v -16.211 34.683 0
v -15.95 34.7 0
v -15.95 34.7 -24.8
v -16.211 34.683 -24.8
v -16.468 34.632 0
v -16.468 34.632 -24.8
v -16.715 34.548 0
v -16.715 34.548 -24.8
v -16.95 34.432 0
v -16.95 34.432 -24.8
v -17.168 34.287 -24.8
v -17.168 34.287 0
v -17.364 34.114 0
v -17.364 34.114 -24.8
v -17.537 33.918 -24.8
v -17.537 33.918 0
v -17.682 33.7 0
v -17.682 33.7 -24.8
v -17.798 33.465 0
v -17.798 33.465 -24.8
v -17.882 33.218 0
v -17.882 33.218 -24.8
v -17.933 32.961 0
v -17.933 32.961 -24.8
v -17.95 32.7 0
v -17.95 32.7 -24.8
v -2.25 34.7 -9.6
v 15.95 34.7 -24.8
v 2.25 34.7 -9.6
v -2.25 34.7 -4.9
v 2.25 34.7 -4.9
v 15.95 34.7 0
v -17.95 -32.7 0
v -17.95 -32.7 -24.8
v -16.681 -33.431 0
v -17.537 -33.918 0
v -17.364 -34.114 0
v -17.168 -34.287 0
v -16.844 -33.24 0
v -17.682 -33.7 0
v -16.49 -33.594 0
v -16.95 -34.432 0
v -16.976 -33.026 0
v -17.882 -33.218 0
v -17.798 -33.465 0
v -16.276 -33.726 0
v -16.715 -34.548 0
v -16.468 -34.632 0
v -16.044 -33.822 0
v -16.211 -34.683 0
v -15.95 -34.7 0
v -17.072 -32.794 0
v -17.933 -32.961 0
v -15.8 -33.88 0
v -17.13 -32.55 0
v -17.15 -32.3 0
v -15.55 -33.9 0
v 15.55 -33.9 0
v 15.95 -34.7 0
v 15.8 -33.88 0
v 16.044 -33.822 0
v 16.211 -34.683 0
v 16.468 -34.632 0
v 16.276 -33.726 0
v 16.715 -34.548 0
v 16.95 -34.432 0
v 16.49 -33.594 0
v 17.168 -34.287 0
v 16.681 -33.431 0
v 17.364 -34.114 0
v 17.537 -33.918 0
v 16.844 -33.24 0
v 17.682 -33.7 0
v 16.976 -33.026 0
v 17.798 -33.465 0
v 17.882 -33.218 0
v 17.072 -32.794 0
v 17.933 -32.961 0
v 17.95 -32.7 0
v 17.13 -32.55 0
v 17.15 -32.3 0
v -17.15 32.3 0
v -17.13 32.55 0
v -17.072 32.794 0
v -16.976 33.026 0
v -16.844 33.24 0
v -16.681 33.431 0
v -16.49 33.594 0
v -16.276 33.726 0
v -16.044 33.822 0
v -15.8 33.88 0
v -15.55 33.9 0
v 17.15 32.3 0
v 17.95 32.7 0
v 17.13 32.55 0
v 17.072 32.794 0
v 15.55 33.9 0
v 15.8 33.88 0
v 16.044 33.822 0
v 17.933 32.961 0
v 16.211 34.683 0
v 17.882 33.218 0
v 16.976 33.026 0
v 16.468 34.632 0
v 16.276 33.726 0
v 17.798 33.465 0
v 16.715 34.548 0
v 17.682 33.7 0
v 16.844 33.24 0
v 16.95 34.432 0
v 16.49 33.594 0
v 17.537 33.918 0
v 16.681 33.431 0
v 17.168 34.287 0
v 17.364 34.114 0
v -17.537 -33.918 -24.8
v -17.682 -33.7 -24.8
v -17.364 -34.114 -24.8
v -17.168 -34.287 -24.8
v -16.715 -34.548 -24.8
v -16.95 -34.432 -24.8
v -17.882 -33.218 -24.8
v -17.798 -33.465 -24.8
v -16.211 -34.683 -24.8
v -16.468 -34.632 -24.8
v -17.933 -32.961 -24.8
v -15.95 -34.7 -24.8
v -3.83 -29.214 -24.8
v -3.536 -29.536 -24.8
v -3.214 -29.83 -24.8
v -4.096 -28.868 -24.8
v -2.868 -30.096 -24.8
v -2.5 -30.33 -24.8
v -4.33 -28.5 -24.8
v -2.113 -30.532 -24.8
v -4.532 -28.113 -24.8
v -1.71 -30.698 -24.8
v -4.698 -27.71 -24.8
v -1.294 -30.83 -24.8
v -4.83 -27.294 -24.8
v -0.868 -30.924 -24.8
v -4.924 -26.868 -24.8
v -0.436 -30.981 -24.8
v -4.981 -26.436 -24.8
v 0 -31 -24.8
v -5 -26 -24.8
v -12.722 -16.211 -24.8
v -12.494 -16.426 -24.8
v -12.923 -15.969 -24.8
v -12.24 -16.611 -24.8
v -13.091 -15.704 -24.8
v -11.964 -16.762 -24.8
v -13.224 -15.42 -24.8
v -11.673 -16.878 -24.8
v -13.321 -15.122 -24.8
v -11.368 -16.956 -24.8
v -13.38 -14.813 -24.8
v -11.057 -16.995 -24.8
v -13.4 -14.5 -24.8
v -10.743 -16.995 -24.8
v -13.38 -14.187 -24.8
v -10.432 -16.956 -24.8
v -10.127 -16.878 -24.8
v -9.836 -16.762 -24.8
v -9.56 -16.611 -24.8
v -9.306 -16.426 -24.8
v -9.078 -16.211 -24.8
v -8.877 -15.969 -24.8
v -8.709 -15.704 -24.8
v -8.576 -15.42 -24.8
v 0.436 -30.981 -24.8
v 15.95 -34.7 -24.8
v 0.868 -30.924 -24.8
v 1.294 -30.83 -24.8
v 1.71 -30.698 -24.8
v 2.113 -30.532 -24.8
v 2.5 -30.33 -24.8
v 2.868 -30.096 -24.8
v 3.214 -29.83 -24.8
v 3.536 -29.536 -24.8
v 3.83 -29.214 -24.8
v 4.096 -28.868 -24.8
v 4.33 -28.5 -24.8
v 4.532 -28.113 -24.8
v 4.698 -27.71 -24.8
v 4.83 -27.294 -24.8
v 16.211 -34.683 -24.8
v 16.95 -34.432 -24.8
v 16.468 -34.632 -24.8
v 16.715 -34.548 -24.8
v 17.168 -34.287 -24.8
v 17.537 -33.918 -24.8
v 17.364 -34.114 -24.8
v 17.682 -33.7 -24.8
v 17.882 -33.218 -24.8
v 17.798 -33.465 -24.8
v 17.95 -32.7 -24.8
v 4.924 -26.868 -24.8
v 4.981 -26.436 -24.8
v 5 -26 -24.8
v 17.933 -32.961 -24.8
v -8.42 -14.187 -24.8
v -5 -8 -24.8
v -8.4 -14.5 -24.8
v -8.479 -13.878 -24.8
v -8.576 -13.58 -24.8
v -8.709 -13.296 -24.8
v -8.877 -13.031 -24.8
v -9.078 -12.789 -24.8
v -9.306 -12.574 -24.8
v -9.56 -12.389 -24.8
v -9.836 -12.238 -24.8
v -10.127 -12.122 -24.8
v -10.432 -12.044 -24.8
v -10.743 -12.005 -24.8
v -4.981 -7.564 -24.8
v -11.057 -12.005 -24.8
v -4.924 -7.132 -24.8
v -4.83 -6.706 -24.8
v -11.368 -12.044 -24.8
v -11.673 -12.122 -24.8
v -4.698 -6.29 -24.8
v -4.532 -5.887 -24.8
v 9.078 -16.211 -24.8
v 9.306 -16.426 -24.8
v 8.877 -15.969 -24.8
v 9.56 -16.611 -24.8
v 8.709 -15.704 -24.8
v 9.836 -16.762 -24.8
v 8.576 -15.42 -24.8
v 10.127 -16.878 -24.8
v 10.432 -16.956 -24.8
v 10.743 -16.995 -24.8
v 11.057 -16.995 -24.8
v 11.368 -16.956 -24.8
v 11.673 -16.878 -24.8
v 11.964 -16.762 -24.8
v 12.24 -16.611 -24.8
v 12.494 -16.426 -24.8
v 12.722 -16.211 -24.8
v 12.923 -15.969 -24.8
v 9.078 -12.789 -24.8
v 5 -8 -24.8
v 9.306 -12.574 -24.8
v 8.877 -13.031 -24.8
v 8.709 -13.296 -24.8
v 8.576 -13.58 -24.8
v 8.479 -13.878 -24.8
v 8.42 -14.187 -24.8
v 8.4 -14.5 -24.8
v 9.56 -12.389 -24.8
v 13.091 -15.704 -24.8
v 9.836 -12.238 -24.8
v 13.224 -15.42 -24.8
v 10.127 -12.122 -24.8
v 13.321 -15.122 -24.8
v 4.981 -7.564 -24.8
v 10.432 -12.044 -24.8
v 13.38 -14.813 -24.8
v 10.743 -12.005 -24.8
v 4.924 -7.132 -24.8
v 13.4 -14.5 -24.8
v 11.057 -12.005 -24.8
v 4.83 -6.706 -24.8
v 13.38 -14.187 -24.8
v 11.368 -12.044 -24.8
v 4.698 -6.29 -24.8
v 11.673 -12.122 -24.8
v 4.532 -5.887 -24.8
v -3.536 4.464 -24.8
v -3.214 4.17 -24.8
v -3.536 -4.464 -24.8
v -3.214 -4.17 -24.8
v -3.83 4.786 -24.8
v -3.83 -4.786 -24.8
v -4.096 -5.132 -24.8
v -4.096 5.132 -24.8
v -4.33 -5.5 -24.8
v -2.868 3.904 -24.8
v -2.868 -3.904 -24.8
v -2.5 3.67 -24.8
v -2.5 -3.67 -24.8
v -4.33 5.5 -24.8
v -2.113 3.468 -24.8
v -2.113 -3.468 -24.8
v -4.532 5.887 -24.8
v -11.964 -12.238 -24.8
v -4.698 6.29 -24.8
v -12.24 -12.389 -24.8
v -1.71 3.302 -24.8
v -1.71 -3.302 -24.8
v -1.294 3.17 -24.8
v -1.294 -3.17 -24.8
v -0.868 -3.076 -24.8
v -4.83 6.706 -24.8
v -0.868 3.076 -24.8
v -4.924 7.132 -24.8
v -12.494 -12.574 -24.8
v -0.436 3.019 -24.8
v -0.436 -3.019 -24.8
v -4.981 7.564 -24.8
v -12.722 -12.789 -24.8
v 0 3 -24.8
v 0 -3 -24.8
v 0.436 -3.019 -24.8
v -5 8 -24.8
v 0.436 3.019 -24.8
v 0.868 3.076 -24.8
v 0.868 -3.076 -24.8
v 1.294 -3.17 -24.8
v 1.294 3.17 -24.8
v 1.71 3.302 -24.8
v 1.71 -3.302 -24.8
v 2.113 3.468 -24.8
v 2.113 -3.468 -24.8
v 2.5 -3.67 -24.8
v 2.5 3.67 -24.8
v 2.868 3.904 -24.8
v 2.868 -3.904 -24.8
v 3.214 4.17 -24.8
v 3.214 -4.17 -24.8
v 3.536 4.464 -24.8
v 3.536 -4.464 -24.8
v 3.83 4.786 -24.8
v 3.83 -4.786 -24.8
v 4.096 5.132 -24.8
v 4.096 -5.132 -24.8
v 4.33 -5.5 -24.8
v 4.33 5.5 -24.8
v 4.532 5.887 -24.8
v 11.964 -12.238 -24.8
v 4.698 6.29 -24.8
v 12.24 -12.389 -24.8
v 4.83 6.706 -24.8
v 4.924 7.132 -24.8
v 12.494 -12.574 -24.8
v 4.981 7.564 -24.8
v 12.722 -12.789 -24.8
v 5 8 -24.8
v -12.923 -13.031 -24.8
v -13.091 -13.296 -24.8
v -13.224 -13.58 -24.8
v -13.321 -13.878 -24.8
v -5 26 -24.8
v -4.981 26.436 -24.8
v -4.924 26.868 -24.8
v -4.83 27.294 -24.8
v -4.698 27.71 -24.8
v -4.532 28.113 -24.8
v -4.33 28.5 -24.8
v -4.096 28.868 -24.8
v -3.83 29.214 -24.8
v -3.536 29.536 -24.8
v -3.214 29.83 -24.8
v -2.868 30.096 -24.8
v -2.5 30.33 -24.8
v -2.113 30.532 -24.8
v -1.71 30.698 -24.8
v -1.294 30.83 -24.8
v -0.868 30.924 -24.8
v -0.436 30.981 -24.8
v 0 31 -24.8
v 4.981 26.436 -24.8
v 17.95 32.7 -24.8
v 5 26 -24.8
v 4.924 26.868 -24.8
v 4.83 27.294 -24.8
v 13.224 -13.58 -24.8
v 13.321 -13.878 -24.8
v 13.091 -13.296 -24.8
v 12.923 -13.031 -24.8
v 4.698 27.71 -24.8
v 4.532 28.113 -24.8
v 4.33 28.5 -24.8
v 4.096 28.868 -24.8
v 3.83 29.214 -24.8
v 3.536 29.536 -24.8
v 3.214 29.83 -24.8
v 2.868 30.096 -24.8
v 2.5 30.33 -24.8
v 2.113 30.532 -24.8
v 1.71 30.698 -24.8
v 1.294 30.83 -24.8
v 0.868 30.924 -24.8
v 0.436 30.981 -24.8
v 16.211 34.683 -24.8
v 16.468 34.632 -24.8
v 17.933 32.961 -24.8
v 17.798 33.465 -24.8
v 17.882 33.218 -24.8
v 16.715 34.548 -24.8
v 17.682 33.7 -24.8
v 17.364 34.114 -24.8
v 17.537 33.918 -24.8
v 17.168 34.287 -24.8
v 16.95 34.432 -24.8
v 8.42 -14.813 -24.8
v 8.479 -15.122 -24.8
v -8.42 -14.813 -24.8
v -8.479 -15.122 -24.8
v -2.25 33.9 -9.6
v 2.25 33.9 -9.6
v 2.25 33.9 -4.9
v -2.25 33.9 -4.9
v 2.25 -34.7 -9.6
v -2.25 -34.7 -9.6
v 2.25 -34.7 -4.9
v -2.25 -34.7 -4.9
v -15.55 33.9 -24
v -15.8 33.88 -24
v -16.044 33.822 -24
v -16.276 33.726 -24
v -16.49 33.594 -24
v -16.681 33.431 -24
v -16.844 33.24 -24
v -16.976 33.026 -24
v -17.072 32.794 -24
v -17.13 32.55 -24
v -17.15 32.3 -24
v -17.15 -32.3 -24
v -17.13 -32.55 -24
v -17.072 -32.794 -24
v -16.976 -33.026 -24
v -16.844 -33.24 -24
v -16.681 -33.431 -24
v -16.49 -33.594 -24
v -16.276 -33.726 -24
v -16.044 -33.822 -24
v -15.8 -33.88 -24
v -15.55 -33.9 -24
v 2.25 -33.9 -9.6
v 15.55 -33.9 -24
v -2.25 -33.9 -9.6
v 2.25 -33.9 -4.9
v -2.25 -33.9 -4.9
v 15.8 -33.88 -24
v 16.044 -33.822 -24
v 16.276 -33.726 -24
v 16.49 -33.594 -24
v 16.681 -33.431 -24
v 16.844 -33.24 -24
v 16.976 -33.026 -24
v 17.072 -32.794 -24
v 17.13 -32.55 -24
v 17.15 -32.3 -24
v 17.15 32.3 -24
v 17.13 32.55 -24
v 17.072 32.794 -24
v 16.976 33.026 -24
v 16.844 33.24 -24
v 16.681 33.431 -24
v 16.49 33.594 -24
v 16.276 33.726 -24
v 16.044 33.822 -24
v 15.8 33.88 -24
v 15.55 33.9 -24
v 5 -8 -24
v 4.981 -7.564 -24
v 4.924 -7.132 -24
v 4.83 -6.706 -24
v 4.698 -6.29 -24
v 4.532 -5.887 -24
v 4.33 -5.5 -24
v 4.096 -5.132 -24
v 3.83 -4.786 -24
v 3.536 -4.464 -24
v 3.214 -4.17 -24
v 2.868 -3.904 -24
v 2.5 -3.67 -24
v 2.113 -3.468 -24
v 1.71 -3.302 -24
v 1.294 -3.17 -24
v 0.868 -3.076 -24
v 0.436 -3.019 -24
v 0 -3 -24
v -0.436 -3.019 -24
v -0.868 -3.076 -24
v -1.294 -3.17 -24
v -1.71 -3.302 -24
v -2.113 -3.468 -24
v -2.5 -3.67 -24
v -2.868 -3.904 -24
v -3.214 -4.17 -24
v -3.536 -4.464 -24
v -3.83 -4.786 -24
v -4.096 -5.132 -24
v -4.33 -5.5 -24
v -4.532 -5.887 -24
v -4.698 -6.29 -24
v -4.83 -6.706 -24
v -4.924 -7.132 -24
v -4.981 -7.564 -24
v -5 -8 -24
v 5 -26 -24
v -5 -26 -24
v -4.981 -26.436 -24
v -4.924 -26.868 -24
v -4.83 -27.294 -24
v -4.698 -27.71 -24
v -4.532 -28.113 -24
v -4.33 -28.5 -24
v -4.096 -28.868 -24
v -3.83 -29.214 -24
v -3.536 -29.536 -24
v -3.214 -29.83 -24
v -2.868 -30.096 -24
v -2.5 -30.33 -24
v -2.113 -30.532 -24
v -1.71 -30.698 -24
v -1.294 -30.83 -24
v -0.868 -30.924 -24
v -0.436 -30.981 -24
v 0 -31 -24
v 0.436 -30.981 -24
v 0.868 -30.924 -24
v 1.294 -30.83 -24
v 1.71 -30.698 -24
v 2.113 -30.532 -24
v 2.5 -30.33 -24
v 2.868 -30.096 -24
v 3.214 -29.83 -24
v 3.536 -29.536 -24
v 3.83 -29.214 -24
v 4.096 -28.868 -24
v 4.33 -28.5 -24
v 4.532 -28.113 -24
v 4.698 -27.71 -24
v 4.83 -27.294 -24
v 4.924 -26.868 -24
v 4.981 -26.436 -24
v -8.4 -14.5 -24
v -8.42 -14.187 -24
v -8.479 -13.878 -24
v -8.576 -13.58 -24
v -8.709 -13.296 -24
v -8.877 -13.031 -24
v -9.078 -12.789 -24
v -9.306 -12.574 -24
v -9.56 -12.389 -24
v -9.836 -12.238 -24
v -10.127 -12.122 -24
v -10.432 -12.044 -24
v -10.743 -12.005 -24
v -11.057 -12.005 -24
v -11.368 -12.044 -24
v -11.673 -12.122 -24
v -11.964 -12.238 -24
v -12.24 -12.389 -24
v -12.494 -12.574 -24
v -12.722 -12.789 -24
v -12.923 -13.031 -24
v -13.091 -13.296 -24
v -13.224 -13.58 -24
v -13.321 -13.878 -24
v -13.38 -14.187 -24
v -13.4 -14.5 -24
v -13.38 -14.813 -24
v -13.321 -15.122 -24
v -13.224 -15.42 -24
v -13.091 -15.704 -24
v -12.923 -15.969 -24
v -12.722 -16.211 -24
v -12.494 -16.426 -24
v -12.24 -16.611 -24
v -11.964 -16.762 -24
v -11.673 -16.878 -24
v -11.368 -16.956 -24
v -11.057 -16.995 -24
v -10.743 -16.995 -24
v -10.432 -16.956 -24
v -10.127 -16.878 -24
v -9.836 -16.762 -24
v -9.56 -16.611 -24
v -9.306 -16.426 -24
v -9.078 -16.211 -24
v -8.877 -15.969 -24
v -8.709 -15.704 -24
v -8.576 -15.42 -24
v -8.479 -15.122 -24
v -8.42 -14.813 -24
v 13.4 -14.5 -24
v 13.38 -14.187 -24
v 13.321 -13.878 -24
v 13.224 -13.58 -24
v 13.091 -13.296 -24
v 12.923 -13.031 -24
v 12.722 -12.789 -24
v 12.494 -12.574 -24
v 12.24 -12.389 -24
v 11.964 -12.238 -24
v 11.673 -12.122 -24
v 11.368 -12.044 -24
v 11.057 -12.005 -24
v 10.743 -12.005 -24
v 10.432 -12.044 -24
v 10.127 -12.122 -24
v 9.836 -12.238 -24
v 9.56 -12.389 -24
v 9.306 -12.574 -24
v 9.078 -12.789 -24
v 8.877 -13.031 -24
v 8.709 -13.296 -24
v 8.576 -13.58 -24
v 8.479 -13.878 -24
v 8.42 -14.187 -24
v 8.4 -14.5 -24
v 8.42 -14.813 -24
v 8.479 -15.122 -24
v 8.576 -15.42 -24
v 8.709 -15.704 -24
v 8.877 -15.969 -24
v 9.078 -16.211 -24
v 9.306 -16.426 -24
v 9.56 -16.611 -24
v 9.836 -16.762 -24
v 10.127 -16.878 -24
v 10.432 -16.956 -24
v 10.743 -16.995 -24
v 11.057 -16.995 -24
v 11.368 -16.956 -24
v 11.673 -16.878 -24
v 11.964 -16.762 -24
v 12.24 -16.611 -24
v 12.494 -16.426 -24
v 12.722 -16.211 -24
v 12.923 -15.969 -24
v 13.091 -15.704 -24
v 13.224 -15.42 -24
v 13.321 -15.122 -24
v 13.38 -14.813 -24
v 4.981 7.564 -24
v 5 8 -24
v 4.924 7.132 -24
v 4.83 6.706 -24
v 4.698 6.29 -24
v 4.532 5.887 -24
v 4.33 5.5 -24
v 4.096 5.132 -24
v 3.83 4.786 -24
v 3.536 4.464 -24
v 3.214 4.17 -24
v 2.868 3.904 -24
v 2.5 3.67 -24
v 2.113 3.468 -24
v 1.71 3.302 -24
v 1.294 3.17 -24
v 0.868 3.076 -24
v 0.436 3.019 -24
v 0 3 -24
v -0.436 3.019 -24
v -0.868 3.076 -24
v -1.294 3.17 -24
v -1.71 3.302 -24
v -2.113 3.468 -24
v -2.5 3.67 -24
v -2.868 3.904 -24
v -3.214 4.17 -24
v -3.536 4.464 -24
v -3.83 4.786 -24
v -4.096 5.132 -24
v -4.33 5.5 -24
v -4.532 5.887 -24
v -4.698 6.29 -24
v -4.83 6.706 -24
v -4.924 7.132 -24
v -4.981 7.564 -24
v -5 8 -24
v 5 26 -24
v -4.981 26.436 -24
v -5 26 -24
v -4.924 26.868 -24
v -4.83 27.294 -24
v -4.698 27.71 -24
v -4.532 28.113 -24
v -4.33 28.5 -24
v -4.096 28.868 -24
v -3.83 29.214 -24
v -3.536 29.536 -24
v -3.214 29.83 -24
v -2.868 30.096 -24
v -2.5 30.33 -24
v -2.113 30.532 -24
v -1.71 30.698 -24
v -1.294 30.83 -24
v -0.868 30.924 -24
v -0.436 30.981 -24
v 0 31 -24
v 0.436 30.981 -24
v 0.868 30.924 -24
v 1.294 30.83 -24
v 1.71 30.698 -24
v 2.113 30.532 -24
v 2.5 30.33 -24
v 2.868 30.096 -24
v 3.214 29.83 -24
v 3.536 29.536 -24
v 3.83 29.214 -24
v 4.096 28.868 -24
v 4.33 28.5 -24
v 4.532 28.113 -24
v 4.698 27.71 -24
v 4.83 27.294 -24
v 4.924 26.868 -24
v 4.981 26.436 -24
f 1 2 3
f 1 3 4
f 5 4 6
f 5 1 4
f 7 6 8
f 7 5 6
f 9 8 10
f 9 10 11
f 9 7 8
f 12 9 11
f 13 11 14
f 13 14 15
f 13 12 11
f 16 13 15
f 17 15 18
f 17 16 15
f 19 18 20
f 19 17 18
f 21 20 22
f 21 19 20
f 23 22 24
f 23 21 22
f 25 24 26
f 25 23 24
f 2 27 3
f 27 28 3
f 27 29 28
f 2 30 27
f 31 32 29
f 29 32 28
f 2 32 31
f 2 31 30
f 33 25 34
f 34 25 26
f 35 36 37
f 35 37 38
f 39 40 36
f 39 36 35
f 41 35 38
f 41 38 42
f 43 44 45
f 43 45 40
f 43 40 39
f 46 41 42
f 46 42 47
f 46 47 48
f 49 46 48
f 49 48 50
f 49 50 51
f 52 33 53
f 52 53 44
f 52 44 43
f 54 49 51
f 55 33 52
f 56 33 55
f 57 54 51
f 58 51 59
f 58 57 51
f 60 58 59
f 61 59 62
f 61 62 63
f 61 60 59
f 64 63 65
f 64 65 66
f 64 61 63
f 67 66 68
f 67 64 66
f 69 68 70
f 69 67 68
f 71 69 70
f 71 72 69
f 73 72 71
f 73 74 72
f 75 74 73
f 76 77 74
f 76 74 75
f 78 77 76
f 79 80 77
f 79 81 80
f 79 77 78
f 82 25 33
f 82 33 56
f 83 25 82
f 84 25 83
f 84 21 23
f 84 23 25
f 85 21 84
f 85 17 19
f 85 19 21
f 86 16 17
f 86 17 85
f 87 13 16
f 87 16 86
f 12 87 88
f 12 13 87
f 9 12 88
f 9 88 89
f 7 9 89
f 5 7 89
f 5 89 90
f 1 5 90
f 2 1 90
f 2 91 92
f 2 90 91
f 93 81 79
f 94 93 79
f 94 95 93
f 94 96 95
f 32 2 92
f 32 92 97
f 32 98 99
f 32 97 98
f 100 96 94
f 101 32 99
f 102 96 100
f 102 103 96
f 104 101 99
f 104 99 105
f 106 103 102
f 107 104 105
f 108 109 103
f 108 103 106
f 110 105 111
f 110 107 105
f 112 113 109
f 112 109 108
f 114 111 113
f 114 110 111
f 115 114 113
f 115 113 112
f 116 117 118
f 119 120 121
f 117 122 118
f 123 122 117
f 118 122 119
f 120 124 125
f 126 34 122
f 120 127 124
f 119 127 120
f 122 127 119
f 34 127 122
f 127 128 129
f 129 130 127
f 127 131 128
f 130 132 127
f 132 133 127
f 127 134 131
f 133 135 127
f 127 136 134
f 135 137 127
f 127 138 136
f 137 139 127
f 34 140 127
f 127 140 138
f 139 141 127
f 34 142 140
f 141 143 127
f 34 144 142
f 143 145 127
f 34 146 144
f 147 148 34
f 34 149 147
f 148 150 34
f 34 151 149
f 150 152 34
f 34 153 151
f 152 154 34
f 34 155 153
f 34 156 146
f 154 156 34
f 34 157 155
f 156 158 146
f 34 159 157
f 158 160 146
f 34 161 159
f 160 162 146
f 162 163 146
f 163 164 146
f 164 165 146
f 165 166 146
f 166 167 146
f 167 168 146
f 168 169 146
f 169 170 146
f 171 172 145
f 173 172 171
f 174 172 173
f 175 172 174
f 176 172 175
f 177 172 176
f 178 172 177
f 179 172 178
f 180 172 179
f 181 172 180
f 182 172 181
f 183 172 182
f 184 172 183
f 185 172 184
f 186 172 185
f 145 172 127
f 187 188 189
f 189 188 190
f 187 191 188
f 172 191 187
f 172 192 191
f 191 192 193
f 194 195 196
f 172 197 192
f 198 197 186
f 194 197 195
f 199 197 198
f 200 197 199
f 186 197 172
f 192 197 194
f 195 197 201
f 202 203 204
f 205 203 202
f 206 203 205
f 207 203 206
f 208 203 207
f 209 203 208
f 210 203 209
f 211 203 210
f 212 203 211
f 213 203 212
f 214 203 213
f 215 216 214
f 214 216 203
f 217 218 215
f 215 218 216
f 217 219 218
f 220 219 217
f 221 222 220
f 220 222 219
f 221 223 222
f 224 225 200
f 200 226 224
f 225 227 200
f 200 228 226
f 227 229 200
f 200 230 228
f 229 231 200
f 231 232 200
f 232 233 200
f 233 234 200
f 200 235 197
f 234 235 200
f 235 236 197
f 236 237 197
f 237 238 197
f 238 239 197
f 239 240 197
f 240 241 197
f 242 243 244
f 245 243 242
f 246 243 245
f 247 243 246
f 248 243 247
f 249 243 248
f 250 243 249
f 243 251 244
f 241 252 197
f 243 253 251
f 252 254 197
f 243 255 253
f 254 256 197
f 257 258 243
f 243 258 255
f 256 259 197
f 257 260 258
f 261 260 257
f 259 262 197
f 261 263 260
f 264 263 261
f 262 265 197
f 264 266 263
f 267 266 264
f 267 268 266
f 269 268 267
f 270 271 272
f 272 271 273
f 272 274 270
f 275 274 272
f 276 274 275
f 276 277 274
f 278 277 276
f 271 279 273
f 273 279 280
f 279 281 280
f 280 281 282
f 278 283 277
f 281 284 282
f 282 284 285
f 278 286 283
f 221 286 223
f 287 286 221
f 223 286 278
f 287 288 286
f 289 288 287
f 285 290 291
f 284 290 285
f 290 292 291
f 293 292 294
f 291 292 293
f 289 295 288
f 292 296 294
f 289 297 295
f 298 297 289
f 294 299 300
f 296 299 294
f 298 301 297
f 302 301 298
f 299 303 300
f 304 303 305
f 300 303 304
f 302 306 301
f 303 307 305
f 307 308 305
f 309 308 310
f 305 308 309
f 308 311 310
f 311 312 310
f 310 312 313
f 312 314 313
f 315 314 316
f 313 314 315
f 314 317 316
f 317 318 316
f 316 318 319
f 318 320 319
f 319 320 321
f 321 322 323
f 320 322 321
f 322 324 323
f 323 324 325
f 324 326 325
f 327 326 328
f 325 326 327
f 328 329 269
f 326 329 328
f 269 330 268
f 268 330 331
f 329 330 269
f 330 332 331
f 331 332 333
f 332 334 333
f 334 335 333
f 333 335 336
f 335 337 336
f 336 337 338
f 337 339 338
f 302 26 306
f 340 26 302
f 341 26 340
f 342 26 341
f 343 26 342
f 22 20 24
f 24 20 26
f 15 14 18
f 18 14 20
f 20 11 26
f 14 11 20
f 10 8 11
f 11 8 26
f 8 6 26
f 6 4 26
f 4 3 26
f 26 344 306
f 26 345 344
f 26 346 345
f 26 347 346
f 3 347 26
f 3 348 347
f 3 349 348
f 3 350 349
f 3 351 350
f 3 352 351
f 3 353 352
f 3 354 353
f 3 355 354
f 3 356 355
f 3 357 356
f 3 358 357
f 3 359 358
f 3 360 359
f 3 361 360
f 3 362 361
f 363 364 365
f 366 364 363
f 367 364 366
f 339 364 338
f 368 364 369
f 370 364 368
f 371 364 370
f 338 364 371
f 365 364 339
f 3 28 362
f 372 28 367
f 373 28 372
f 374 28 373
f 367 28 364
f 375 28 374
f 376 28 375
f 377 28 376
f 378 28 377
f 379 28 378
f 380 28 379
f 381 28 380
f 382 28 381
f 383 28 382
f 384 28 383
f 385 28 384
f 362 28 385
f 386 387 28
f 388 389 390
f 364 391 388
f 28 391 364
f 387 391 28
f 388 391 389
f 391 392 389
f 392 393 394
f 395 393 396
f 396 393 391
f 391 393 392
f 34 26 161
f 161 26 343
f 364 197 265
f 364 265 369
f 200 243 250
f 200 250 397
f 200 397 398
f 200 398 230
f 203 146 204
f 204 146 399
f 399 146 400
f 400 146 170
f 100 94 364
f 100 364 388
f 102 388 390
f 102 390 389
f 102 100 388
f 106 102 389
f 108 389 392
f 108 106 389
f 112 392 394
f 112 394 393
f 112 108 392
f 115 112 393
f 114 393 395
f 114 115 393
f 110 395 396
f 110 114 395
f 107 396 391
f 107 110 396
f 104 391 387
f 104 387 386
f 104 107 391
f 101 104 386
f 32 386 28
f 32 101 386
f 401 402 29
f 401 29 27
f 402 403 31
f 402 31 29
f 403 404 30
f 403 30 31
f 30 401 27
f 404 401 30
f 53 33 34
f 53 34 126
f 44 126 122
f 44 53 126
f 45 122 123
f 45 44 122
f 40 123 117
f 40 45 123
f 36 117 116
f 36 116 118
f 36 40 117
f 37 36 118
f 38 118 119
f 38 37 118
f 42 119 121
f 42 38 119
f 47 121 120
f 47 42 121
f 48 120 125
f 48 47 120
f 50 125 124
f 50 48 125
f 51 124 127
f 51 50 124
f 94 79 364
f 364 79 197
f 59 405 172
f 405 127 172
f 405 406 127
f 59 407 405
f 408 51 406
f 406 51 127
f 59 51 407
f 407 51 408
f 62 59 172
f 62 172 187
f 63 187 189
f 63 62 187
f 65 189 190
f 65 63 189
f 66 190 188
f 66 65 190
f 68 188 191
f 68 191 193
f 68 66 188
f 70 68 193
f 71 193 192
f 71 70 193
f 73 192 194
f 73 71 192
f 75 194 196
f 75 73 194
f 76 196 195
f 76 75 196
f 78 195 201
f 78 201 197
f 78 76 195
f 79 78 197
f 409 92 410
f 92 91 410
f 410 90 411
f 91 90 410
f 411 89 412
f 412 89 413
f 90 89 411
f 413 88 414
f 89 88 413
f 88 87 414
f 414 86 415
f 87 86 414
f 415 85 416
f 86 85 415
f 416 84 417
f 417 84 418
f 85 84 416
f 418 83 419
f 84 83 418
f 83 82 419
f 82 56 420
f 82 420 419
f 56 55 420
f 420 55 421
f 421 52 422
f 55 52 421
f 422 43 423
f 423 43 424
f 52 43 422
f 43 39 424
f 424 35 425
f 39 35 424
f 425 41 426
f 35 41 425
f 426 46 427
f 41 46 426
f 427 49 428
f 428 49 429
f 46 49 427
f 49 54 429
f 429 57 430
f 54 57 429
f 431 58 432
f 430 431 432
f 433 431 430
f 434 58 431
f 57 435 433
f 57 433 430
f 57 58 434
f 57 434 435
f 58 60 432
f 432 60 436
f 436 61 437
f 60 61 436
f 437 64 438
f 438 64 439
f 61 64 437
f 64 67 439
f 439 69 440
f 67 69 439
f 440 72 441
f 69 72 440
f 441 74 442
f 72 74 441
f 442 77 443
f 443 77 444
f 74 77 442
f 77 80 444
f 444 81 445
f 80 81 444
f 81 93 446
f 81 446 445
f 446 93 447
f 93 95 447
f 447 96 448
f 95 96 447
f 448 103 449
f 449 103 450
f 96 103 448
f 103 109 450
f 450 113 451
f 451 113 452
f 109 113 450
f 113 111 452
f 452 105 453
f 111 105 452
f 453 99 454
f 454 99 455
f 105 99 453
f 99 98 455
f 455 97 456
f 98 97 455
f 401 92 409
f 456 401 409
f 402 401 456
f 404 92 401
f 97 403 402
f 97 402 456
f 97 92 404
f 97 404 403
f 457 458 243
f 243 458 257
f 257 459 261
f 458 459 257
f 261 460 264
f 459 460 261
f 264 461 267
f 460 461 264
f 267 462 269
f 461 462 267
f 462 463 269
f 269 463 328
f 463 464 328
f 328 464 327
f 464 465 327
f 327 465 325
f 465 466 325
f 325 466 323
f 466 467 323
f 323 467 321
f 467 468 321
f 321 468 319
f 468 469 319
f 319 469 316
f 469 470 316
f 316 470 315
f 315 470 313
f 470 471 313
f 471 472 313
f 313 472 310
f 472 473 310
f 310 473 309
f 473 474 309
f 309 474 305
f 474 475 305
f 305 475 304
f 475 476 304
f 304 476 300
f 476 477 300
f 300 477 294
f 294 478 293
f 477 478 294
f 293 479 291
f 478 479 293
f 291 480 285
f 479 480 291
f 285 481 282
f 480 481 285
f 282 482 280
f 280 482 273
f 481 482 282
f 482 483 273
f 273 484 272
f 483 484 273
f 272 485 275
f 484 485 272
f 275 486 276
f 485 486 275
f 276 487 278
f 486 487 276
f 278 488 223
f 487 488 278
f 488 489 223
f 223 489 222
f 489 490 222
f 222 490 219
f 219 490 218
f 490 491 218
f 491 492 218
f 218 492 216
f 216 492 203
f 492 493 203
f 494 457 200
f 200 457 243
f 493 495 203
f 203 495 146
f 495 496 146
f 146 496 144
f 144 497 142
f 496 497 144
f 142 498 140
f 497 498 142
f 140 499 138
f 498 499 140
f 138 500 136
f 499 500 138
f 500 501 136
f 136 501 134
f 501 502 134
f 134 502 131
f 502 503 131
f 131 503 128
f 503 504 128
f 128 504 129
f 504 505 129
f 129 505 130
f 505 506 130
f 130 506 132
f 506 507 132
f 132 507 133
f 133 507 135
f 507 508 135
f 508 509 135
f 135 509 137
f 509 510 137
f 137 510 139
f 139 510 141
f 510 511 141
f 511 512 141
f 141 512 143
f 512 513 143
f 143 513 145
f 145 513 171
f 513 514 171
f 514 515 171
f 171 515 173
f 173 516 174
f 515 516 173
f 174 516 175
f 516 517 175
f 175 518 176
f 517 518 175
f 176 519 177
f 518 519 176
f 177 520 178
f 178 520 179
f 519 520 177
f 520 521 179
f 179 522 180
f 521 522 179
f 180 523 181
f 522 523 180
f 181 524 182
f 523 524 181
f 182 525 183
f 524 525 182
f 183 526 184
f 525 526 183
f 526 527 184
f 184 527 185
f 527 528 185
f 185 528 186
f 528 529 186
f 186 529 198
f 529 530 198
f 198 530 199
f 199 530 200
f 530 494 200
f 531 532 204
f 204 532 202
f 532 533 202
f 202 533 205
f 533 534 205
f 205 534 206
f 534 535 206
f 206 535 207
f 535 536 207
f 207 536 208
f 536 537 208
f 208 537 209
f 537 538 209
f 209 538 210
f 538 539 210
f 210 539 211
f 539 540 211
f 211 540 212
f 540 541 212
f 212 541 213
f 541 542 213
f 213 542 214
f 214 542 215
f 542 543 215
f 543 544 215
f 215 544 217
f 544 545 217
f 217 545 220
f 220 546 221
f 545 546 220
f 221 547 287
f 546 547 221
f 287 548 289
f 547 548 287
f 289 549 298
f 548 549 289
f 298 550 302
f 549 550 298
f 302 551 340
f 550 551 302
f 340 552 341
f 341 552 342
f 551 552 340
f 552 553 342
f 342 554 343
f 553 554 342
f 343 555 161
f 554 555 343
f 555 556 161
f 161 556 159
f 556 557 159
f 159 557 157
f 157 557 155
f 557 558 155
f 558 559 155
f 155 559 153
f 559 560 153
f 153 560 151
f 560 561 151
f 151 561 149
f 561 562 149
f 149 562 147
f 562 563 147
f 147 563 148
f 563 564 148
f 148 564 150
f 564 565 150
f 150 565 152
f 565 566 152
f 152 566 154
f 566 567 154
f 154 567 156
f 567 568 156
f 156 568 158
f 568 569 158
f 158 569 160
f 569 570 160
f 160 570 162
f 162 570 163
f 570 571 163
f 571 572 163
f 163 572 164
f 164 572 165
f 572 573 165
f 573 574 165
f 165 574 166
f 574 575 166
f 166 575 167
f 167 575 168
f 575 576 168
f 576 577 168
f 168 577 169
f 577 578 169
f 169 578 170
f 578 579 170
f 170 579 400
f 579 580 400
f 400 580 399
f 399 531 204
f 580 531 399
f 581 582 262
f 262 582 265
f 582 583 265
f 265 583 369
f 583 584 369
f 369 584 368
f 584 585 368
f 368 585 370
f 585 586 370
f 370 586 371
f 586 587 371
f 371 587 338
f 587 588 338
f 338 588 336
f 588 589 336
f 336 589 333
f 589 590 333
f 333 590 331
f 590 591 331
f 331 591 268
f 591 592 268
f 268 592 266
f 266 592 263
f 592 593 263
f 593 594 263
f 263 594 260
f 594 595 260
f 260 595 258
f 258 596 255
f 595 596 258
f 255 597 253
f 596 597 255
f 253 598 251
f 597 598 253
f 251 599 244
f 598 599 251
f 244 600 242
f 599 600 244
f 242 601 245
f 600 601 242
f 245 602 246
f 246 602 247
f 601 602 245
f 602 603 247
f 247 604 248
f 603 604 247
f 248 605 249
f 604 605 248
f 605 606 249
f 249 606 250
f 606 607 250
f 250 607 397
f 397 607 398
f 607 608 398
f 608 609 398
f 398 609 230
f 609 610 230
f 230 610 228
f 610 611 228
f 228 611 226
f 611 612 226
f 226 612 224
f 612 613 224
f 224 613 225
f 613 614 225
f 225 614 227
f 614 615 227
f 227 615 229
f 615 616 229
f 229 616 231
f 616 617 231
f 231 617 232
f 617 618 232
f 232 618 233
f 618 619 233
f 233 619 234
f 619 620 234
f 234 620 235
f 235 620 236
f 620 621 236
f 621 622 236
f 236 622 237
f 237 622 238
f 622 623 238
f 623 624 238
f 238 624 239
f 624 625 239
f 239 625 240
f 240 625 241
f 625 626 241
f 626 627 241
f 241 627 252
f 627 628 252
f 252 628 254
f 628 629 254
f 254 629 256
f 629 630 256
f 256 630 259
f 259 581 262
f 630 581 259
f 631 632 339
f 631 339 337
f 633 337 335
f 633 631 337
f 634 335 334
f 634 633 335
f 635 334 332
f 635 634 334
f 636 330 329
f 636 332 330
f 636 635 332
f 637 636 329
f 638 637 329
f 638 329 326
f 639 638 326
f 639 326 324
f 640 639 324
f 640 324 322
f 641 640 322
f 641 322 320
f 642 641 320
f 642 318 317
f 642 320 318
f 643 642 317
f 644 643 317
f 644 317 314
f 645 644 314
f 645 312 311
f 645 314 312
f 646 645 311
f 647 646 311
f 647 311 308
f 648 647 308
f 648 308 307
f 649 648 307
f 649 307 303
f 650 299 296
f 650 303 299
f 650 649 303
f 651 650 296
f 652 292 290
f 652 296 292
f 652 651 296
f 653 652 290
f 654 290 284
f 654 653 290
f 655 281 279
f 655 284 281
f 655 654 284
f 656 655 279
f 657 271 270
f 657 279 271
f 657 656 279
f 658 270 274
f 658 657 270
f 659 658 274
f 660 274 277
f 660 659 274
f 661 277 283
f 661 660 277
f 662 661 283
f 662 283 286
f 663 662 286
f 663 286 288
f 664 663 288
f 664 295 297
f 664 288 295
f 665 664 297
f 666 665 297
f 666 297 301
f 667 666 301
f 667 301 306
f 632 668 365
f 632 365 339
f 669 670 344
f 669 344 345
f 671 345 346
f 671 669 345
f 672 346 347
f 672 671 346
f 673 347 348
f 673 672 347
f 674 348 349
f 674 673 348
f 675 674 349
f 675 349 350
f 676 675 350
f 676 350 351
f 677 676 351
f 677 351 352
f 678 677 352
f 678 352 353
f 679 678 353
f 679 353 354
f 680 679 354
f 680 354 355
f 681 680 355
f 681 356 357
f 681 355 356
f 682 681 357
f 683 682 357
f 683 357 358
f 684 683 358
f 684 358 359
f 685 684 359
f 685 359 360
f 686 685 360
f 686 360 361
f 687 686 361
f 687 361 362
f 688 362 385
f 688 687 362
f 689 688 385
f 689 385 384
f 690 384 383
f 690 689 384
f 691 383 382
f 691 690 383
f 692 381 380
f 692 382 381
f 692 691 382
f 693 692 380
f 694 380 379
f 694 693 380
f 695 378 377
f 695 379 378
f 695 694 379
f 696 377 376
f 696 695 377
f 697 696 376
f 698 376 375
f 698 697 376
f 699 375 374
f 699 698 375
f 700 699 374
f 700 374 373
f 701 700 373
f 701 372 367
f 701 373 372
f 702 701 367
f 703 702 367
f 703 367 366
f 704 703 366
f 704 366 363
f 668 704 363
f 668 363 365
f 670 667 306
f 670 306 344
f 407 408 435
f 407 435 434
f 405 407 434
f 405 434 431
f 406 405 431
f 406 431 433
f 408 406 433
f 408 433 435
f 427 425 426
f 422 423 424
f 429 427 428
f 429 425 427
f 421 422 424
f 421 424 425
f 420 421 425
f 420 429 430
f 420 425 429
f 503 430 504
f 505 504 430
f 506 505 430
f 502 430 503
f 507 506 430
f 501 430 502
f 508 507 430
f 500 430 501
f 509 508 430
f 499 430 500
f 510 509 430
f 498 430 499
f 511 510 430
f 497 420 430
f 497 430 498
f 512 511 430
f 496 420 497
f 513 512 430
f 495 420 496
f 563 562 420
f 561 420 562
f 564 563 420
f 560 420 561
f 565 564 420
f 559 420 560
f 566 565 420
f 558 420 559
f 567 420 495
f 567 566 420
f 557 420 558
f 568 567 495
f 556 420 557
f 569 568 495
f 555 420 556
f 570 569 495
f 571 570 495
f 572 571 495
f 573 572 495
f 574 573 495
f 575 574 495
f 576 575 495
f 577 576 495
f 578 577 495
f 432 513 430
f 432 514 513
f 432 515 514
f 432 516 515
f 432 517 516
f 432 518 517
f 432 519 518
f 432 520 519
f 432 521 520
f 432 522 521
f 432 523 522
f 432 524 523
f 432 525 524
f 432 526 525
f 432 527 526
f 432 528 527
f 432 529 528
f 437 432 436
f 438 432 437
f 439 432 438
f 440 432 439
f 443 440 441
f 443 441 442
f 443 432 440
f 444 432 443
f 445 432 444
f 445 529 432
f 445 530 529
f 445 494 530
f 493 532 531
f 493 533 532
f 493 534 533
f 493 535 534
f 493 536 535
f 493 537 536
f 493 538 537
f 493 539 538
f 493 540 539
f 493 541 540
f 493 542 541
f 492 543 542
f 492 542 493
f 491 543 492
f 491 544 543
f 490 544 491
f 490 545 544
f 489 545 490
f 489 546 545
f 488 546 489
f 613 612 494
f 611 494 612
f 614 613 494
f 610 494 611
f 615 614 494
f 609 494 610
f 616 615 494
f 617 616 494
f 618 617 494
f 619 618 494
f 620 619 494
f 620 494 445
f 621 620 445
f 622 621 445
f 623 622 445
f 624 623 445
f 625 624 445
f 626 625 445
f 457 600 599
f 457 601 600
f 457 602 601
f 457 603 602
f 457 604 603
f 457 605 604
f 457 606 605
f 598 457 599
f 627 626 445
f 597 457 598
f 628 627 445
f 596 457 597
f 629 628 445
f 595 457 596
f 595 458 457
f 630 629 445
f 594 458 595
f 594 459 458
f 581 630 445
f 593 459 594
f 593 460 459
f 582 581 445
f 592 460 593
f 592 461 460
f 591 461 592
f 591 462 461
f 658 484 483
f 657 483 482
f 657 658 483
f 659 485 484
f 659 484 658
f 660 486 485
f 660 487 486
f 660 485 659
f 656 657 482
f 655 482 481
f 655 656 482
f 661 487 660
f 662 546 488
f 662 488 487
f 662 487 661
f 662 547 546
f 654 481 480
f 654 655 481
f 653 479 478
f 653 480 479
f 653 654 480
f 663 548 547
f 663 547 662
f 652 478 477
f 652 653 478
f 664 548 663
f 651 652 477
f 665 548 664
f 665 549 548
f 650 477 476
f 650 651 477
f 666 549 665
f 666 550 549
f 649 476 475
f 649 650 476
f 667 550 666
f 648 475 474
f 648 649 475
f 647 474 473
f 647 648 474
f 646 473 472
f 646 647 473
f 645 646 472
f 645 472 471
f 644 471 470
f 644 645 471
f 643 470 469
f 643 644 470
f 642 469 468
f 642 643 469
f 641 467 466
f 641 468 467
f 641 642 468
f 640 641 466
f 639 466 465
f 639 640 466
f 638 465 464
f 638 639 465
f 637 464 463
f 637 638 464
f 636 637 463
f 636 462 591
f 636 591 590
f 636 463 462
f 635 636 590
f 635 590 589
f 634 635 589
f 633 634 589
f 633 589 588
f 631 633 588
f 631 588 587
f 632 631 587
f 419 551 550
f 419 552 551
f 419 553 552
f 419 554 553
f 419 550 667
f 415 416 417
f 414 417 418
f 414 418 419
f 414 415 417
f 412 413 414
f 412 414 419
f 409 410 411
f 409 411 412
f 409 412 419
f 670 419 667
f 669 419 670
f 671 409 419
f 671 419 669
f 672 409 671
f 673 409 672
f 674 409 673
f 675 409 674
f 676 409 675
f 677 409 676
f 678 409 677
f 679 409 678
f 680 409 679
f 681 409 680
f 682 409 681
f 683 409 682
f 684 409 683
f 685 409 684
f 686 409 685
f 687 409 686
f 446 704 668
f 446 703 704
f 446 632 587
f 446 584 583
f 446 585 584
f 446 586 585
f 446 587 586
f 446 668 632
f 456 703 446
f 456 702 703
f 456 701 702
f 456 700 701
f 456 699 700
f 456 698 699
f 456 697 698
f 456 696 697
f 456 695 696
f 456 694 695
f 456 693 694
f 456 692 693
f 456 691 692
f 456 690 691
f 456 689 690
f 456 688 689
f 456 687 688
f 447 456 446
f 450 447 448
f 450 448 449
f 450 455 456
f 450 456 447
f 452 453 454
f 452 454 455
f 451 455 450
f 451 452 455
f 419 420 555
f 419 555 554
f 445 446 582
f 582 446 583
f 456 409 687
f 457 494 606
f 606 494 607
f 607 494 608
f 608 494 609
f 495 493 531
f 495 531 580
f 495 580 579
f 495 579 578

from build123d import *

# Parameters (mm, degrees)
PAD_DEPTH            = 24.8
POCKET_DEPTH         = 24
SKETCH002_R          = 2.5
POCKET001_DEPTH      = 24.801
POCKET001_DEPTH_BACK = -0.001
POCKET002_DEPTH      = 188.754774
POCKET002_DEPTH_BACK = -163.954774
SKETCH004_W          = 4.5
SKETCH004_H          = 4.7
POCKET003_DEPTH      = 34.701
POCKET003_DEPTH_BACK = -34.701


with BuildPart() as part:
    # Sketch → Pad (new body)
    with BuildSketch(Plane.XY):
        with BuildLine():
            ThreePointArc((-15.95, 34.7), (-17.364214, 34.114214), (-17.95, 32.7))
            Line((-17.95, -32.7), (-17.95, 32.7))
            ThreePointArc((-17.95, -32.7), (-17.364214, -34.114214), (-15.95, -34.7))
            Line((15.95, -34.7), (-15.95, -34.7))
            ThreePointArc((15.95, -34.7), (17.364214, -34.114214), (17.95, -32.7))
            Line((17.95, 32.7), (17.95, -32.7))
            ThreePointArc((17.95, 32.7), (17.364214, 34.114214), (15.95, 34.7))
            Line((-15.95, 34.7), (15.95, 34.7))
        make_face()
    extrude(amount=-PAD_DEPTH)

    # Sketch001 → Pocket (cut)
    with BuildSketch(Plane.XY):
        with BuildLine():
            ThreePointArc((-15.55, 33.9), (-16.681371, 33.431371), (-17.15, 32.3))
            Line((-17.15, -32.3), (-17.15, 32.3))
            ThreePointArc((-17.15, -32.3), (-16.681371, -33.431371), (-15.55, -33.9))
            Line((15.55, -33.9), (-15.55, -33.9))
            ThreePointArc((15.55, -33.9), (16.681371, -33.431371), (17.15, -32.3))
            Line((17.15, 32.3), (17.15, -32.3))
            ThreePointArc((17.15, 32.3), (16.681371, 33.431371), (15.55, 33.9))
            Line((-15.55, 33.9), (15.55, 33.9))
        make_face()
    extrude(amount=-POCKET_DEPTH, mode=Mode.SUBTRACT)

    # Sketch002 → Pocket001 (cut, two sides)
    with BuildSketch(Plane.XY) as pocket001_sk:
        with Locations((10.9, -14.5)):
            Circle(SKETCH002_R)
        with Locations((-10.9, -14.5)):
            Circle(SKETCH002_R)
    extrude(amount=-POCKET001_DEPTH, mode=Mode.SUBTRACT)
    extrude(pocket001_sk.sketch, amount=-POCKET001_DEPTH_BACK, mode=Mode.SUBTRACT)

    # Sketch003 → Pocket002 (cut, two sides)
    with BuildSketch(Plane.XY) as pocket002_sk:
        with BuildLine():
            ThreePointArc((5, -8), (0, -3), (-5, -8))
            Line((-5, -8), (-5, -26))
            ThreePointArc((-5, -26), (0, -31), (5, -26))
            Line((5, -26), (5, -8))
        make_face()
    pocket002 = extrude(amount=-POCKET002_DEPTH, mode=Mode.SUBTRACT)
    extrude(pocket002_sk.sketch, amount=-POCKET002_DEPTH_BACK, mode=Mode.SUBTRACT)

    # Mirrored: Pocket002 across Sketch003 H_Axis
    add(pocket002.mirror(Plane.ZX), mode=Mode.SUBTRACT)

    # Sketch004 → Pocket003 (cut, two sides)
    with BuildSketch(Plane.XZ) as pocket003_sk:
        with Locations((0, -7.25)):
            Rectangle(SKETCH004_W, SKETCH004_H)
    extrude(amount=-POCKET003_DEPTH, mode=Mode.SUBTRACT)
    extrude(pocket003_sk.sketch, amount=-POCKET003_DEPTH_BACK, mode=Mode.SUBTRACT)


solid = part.part
